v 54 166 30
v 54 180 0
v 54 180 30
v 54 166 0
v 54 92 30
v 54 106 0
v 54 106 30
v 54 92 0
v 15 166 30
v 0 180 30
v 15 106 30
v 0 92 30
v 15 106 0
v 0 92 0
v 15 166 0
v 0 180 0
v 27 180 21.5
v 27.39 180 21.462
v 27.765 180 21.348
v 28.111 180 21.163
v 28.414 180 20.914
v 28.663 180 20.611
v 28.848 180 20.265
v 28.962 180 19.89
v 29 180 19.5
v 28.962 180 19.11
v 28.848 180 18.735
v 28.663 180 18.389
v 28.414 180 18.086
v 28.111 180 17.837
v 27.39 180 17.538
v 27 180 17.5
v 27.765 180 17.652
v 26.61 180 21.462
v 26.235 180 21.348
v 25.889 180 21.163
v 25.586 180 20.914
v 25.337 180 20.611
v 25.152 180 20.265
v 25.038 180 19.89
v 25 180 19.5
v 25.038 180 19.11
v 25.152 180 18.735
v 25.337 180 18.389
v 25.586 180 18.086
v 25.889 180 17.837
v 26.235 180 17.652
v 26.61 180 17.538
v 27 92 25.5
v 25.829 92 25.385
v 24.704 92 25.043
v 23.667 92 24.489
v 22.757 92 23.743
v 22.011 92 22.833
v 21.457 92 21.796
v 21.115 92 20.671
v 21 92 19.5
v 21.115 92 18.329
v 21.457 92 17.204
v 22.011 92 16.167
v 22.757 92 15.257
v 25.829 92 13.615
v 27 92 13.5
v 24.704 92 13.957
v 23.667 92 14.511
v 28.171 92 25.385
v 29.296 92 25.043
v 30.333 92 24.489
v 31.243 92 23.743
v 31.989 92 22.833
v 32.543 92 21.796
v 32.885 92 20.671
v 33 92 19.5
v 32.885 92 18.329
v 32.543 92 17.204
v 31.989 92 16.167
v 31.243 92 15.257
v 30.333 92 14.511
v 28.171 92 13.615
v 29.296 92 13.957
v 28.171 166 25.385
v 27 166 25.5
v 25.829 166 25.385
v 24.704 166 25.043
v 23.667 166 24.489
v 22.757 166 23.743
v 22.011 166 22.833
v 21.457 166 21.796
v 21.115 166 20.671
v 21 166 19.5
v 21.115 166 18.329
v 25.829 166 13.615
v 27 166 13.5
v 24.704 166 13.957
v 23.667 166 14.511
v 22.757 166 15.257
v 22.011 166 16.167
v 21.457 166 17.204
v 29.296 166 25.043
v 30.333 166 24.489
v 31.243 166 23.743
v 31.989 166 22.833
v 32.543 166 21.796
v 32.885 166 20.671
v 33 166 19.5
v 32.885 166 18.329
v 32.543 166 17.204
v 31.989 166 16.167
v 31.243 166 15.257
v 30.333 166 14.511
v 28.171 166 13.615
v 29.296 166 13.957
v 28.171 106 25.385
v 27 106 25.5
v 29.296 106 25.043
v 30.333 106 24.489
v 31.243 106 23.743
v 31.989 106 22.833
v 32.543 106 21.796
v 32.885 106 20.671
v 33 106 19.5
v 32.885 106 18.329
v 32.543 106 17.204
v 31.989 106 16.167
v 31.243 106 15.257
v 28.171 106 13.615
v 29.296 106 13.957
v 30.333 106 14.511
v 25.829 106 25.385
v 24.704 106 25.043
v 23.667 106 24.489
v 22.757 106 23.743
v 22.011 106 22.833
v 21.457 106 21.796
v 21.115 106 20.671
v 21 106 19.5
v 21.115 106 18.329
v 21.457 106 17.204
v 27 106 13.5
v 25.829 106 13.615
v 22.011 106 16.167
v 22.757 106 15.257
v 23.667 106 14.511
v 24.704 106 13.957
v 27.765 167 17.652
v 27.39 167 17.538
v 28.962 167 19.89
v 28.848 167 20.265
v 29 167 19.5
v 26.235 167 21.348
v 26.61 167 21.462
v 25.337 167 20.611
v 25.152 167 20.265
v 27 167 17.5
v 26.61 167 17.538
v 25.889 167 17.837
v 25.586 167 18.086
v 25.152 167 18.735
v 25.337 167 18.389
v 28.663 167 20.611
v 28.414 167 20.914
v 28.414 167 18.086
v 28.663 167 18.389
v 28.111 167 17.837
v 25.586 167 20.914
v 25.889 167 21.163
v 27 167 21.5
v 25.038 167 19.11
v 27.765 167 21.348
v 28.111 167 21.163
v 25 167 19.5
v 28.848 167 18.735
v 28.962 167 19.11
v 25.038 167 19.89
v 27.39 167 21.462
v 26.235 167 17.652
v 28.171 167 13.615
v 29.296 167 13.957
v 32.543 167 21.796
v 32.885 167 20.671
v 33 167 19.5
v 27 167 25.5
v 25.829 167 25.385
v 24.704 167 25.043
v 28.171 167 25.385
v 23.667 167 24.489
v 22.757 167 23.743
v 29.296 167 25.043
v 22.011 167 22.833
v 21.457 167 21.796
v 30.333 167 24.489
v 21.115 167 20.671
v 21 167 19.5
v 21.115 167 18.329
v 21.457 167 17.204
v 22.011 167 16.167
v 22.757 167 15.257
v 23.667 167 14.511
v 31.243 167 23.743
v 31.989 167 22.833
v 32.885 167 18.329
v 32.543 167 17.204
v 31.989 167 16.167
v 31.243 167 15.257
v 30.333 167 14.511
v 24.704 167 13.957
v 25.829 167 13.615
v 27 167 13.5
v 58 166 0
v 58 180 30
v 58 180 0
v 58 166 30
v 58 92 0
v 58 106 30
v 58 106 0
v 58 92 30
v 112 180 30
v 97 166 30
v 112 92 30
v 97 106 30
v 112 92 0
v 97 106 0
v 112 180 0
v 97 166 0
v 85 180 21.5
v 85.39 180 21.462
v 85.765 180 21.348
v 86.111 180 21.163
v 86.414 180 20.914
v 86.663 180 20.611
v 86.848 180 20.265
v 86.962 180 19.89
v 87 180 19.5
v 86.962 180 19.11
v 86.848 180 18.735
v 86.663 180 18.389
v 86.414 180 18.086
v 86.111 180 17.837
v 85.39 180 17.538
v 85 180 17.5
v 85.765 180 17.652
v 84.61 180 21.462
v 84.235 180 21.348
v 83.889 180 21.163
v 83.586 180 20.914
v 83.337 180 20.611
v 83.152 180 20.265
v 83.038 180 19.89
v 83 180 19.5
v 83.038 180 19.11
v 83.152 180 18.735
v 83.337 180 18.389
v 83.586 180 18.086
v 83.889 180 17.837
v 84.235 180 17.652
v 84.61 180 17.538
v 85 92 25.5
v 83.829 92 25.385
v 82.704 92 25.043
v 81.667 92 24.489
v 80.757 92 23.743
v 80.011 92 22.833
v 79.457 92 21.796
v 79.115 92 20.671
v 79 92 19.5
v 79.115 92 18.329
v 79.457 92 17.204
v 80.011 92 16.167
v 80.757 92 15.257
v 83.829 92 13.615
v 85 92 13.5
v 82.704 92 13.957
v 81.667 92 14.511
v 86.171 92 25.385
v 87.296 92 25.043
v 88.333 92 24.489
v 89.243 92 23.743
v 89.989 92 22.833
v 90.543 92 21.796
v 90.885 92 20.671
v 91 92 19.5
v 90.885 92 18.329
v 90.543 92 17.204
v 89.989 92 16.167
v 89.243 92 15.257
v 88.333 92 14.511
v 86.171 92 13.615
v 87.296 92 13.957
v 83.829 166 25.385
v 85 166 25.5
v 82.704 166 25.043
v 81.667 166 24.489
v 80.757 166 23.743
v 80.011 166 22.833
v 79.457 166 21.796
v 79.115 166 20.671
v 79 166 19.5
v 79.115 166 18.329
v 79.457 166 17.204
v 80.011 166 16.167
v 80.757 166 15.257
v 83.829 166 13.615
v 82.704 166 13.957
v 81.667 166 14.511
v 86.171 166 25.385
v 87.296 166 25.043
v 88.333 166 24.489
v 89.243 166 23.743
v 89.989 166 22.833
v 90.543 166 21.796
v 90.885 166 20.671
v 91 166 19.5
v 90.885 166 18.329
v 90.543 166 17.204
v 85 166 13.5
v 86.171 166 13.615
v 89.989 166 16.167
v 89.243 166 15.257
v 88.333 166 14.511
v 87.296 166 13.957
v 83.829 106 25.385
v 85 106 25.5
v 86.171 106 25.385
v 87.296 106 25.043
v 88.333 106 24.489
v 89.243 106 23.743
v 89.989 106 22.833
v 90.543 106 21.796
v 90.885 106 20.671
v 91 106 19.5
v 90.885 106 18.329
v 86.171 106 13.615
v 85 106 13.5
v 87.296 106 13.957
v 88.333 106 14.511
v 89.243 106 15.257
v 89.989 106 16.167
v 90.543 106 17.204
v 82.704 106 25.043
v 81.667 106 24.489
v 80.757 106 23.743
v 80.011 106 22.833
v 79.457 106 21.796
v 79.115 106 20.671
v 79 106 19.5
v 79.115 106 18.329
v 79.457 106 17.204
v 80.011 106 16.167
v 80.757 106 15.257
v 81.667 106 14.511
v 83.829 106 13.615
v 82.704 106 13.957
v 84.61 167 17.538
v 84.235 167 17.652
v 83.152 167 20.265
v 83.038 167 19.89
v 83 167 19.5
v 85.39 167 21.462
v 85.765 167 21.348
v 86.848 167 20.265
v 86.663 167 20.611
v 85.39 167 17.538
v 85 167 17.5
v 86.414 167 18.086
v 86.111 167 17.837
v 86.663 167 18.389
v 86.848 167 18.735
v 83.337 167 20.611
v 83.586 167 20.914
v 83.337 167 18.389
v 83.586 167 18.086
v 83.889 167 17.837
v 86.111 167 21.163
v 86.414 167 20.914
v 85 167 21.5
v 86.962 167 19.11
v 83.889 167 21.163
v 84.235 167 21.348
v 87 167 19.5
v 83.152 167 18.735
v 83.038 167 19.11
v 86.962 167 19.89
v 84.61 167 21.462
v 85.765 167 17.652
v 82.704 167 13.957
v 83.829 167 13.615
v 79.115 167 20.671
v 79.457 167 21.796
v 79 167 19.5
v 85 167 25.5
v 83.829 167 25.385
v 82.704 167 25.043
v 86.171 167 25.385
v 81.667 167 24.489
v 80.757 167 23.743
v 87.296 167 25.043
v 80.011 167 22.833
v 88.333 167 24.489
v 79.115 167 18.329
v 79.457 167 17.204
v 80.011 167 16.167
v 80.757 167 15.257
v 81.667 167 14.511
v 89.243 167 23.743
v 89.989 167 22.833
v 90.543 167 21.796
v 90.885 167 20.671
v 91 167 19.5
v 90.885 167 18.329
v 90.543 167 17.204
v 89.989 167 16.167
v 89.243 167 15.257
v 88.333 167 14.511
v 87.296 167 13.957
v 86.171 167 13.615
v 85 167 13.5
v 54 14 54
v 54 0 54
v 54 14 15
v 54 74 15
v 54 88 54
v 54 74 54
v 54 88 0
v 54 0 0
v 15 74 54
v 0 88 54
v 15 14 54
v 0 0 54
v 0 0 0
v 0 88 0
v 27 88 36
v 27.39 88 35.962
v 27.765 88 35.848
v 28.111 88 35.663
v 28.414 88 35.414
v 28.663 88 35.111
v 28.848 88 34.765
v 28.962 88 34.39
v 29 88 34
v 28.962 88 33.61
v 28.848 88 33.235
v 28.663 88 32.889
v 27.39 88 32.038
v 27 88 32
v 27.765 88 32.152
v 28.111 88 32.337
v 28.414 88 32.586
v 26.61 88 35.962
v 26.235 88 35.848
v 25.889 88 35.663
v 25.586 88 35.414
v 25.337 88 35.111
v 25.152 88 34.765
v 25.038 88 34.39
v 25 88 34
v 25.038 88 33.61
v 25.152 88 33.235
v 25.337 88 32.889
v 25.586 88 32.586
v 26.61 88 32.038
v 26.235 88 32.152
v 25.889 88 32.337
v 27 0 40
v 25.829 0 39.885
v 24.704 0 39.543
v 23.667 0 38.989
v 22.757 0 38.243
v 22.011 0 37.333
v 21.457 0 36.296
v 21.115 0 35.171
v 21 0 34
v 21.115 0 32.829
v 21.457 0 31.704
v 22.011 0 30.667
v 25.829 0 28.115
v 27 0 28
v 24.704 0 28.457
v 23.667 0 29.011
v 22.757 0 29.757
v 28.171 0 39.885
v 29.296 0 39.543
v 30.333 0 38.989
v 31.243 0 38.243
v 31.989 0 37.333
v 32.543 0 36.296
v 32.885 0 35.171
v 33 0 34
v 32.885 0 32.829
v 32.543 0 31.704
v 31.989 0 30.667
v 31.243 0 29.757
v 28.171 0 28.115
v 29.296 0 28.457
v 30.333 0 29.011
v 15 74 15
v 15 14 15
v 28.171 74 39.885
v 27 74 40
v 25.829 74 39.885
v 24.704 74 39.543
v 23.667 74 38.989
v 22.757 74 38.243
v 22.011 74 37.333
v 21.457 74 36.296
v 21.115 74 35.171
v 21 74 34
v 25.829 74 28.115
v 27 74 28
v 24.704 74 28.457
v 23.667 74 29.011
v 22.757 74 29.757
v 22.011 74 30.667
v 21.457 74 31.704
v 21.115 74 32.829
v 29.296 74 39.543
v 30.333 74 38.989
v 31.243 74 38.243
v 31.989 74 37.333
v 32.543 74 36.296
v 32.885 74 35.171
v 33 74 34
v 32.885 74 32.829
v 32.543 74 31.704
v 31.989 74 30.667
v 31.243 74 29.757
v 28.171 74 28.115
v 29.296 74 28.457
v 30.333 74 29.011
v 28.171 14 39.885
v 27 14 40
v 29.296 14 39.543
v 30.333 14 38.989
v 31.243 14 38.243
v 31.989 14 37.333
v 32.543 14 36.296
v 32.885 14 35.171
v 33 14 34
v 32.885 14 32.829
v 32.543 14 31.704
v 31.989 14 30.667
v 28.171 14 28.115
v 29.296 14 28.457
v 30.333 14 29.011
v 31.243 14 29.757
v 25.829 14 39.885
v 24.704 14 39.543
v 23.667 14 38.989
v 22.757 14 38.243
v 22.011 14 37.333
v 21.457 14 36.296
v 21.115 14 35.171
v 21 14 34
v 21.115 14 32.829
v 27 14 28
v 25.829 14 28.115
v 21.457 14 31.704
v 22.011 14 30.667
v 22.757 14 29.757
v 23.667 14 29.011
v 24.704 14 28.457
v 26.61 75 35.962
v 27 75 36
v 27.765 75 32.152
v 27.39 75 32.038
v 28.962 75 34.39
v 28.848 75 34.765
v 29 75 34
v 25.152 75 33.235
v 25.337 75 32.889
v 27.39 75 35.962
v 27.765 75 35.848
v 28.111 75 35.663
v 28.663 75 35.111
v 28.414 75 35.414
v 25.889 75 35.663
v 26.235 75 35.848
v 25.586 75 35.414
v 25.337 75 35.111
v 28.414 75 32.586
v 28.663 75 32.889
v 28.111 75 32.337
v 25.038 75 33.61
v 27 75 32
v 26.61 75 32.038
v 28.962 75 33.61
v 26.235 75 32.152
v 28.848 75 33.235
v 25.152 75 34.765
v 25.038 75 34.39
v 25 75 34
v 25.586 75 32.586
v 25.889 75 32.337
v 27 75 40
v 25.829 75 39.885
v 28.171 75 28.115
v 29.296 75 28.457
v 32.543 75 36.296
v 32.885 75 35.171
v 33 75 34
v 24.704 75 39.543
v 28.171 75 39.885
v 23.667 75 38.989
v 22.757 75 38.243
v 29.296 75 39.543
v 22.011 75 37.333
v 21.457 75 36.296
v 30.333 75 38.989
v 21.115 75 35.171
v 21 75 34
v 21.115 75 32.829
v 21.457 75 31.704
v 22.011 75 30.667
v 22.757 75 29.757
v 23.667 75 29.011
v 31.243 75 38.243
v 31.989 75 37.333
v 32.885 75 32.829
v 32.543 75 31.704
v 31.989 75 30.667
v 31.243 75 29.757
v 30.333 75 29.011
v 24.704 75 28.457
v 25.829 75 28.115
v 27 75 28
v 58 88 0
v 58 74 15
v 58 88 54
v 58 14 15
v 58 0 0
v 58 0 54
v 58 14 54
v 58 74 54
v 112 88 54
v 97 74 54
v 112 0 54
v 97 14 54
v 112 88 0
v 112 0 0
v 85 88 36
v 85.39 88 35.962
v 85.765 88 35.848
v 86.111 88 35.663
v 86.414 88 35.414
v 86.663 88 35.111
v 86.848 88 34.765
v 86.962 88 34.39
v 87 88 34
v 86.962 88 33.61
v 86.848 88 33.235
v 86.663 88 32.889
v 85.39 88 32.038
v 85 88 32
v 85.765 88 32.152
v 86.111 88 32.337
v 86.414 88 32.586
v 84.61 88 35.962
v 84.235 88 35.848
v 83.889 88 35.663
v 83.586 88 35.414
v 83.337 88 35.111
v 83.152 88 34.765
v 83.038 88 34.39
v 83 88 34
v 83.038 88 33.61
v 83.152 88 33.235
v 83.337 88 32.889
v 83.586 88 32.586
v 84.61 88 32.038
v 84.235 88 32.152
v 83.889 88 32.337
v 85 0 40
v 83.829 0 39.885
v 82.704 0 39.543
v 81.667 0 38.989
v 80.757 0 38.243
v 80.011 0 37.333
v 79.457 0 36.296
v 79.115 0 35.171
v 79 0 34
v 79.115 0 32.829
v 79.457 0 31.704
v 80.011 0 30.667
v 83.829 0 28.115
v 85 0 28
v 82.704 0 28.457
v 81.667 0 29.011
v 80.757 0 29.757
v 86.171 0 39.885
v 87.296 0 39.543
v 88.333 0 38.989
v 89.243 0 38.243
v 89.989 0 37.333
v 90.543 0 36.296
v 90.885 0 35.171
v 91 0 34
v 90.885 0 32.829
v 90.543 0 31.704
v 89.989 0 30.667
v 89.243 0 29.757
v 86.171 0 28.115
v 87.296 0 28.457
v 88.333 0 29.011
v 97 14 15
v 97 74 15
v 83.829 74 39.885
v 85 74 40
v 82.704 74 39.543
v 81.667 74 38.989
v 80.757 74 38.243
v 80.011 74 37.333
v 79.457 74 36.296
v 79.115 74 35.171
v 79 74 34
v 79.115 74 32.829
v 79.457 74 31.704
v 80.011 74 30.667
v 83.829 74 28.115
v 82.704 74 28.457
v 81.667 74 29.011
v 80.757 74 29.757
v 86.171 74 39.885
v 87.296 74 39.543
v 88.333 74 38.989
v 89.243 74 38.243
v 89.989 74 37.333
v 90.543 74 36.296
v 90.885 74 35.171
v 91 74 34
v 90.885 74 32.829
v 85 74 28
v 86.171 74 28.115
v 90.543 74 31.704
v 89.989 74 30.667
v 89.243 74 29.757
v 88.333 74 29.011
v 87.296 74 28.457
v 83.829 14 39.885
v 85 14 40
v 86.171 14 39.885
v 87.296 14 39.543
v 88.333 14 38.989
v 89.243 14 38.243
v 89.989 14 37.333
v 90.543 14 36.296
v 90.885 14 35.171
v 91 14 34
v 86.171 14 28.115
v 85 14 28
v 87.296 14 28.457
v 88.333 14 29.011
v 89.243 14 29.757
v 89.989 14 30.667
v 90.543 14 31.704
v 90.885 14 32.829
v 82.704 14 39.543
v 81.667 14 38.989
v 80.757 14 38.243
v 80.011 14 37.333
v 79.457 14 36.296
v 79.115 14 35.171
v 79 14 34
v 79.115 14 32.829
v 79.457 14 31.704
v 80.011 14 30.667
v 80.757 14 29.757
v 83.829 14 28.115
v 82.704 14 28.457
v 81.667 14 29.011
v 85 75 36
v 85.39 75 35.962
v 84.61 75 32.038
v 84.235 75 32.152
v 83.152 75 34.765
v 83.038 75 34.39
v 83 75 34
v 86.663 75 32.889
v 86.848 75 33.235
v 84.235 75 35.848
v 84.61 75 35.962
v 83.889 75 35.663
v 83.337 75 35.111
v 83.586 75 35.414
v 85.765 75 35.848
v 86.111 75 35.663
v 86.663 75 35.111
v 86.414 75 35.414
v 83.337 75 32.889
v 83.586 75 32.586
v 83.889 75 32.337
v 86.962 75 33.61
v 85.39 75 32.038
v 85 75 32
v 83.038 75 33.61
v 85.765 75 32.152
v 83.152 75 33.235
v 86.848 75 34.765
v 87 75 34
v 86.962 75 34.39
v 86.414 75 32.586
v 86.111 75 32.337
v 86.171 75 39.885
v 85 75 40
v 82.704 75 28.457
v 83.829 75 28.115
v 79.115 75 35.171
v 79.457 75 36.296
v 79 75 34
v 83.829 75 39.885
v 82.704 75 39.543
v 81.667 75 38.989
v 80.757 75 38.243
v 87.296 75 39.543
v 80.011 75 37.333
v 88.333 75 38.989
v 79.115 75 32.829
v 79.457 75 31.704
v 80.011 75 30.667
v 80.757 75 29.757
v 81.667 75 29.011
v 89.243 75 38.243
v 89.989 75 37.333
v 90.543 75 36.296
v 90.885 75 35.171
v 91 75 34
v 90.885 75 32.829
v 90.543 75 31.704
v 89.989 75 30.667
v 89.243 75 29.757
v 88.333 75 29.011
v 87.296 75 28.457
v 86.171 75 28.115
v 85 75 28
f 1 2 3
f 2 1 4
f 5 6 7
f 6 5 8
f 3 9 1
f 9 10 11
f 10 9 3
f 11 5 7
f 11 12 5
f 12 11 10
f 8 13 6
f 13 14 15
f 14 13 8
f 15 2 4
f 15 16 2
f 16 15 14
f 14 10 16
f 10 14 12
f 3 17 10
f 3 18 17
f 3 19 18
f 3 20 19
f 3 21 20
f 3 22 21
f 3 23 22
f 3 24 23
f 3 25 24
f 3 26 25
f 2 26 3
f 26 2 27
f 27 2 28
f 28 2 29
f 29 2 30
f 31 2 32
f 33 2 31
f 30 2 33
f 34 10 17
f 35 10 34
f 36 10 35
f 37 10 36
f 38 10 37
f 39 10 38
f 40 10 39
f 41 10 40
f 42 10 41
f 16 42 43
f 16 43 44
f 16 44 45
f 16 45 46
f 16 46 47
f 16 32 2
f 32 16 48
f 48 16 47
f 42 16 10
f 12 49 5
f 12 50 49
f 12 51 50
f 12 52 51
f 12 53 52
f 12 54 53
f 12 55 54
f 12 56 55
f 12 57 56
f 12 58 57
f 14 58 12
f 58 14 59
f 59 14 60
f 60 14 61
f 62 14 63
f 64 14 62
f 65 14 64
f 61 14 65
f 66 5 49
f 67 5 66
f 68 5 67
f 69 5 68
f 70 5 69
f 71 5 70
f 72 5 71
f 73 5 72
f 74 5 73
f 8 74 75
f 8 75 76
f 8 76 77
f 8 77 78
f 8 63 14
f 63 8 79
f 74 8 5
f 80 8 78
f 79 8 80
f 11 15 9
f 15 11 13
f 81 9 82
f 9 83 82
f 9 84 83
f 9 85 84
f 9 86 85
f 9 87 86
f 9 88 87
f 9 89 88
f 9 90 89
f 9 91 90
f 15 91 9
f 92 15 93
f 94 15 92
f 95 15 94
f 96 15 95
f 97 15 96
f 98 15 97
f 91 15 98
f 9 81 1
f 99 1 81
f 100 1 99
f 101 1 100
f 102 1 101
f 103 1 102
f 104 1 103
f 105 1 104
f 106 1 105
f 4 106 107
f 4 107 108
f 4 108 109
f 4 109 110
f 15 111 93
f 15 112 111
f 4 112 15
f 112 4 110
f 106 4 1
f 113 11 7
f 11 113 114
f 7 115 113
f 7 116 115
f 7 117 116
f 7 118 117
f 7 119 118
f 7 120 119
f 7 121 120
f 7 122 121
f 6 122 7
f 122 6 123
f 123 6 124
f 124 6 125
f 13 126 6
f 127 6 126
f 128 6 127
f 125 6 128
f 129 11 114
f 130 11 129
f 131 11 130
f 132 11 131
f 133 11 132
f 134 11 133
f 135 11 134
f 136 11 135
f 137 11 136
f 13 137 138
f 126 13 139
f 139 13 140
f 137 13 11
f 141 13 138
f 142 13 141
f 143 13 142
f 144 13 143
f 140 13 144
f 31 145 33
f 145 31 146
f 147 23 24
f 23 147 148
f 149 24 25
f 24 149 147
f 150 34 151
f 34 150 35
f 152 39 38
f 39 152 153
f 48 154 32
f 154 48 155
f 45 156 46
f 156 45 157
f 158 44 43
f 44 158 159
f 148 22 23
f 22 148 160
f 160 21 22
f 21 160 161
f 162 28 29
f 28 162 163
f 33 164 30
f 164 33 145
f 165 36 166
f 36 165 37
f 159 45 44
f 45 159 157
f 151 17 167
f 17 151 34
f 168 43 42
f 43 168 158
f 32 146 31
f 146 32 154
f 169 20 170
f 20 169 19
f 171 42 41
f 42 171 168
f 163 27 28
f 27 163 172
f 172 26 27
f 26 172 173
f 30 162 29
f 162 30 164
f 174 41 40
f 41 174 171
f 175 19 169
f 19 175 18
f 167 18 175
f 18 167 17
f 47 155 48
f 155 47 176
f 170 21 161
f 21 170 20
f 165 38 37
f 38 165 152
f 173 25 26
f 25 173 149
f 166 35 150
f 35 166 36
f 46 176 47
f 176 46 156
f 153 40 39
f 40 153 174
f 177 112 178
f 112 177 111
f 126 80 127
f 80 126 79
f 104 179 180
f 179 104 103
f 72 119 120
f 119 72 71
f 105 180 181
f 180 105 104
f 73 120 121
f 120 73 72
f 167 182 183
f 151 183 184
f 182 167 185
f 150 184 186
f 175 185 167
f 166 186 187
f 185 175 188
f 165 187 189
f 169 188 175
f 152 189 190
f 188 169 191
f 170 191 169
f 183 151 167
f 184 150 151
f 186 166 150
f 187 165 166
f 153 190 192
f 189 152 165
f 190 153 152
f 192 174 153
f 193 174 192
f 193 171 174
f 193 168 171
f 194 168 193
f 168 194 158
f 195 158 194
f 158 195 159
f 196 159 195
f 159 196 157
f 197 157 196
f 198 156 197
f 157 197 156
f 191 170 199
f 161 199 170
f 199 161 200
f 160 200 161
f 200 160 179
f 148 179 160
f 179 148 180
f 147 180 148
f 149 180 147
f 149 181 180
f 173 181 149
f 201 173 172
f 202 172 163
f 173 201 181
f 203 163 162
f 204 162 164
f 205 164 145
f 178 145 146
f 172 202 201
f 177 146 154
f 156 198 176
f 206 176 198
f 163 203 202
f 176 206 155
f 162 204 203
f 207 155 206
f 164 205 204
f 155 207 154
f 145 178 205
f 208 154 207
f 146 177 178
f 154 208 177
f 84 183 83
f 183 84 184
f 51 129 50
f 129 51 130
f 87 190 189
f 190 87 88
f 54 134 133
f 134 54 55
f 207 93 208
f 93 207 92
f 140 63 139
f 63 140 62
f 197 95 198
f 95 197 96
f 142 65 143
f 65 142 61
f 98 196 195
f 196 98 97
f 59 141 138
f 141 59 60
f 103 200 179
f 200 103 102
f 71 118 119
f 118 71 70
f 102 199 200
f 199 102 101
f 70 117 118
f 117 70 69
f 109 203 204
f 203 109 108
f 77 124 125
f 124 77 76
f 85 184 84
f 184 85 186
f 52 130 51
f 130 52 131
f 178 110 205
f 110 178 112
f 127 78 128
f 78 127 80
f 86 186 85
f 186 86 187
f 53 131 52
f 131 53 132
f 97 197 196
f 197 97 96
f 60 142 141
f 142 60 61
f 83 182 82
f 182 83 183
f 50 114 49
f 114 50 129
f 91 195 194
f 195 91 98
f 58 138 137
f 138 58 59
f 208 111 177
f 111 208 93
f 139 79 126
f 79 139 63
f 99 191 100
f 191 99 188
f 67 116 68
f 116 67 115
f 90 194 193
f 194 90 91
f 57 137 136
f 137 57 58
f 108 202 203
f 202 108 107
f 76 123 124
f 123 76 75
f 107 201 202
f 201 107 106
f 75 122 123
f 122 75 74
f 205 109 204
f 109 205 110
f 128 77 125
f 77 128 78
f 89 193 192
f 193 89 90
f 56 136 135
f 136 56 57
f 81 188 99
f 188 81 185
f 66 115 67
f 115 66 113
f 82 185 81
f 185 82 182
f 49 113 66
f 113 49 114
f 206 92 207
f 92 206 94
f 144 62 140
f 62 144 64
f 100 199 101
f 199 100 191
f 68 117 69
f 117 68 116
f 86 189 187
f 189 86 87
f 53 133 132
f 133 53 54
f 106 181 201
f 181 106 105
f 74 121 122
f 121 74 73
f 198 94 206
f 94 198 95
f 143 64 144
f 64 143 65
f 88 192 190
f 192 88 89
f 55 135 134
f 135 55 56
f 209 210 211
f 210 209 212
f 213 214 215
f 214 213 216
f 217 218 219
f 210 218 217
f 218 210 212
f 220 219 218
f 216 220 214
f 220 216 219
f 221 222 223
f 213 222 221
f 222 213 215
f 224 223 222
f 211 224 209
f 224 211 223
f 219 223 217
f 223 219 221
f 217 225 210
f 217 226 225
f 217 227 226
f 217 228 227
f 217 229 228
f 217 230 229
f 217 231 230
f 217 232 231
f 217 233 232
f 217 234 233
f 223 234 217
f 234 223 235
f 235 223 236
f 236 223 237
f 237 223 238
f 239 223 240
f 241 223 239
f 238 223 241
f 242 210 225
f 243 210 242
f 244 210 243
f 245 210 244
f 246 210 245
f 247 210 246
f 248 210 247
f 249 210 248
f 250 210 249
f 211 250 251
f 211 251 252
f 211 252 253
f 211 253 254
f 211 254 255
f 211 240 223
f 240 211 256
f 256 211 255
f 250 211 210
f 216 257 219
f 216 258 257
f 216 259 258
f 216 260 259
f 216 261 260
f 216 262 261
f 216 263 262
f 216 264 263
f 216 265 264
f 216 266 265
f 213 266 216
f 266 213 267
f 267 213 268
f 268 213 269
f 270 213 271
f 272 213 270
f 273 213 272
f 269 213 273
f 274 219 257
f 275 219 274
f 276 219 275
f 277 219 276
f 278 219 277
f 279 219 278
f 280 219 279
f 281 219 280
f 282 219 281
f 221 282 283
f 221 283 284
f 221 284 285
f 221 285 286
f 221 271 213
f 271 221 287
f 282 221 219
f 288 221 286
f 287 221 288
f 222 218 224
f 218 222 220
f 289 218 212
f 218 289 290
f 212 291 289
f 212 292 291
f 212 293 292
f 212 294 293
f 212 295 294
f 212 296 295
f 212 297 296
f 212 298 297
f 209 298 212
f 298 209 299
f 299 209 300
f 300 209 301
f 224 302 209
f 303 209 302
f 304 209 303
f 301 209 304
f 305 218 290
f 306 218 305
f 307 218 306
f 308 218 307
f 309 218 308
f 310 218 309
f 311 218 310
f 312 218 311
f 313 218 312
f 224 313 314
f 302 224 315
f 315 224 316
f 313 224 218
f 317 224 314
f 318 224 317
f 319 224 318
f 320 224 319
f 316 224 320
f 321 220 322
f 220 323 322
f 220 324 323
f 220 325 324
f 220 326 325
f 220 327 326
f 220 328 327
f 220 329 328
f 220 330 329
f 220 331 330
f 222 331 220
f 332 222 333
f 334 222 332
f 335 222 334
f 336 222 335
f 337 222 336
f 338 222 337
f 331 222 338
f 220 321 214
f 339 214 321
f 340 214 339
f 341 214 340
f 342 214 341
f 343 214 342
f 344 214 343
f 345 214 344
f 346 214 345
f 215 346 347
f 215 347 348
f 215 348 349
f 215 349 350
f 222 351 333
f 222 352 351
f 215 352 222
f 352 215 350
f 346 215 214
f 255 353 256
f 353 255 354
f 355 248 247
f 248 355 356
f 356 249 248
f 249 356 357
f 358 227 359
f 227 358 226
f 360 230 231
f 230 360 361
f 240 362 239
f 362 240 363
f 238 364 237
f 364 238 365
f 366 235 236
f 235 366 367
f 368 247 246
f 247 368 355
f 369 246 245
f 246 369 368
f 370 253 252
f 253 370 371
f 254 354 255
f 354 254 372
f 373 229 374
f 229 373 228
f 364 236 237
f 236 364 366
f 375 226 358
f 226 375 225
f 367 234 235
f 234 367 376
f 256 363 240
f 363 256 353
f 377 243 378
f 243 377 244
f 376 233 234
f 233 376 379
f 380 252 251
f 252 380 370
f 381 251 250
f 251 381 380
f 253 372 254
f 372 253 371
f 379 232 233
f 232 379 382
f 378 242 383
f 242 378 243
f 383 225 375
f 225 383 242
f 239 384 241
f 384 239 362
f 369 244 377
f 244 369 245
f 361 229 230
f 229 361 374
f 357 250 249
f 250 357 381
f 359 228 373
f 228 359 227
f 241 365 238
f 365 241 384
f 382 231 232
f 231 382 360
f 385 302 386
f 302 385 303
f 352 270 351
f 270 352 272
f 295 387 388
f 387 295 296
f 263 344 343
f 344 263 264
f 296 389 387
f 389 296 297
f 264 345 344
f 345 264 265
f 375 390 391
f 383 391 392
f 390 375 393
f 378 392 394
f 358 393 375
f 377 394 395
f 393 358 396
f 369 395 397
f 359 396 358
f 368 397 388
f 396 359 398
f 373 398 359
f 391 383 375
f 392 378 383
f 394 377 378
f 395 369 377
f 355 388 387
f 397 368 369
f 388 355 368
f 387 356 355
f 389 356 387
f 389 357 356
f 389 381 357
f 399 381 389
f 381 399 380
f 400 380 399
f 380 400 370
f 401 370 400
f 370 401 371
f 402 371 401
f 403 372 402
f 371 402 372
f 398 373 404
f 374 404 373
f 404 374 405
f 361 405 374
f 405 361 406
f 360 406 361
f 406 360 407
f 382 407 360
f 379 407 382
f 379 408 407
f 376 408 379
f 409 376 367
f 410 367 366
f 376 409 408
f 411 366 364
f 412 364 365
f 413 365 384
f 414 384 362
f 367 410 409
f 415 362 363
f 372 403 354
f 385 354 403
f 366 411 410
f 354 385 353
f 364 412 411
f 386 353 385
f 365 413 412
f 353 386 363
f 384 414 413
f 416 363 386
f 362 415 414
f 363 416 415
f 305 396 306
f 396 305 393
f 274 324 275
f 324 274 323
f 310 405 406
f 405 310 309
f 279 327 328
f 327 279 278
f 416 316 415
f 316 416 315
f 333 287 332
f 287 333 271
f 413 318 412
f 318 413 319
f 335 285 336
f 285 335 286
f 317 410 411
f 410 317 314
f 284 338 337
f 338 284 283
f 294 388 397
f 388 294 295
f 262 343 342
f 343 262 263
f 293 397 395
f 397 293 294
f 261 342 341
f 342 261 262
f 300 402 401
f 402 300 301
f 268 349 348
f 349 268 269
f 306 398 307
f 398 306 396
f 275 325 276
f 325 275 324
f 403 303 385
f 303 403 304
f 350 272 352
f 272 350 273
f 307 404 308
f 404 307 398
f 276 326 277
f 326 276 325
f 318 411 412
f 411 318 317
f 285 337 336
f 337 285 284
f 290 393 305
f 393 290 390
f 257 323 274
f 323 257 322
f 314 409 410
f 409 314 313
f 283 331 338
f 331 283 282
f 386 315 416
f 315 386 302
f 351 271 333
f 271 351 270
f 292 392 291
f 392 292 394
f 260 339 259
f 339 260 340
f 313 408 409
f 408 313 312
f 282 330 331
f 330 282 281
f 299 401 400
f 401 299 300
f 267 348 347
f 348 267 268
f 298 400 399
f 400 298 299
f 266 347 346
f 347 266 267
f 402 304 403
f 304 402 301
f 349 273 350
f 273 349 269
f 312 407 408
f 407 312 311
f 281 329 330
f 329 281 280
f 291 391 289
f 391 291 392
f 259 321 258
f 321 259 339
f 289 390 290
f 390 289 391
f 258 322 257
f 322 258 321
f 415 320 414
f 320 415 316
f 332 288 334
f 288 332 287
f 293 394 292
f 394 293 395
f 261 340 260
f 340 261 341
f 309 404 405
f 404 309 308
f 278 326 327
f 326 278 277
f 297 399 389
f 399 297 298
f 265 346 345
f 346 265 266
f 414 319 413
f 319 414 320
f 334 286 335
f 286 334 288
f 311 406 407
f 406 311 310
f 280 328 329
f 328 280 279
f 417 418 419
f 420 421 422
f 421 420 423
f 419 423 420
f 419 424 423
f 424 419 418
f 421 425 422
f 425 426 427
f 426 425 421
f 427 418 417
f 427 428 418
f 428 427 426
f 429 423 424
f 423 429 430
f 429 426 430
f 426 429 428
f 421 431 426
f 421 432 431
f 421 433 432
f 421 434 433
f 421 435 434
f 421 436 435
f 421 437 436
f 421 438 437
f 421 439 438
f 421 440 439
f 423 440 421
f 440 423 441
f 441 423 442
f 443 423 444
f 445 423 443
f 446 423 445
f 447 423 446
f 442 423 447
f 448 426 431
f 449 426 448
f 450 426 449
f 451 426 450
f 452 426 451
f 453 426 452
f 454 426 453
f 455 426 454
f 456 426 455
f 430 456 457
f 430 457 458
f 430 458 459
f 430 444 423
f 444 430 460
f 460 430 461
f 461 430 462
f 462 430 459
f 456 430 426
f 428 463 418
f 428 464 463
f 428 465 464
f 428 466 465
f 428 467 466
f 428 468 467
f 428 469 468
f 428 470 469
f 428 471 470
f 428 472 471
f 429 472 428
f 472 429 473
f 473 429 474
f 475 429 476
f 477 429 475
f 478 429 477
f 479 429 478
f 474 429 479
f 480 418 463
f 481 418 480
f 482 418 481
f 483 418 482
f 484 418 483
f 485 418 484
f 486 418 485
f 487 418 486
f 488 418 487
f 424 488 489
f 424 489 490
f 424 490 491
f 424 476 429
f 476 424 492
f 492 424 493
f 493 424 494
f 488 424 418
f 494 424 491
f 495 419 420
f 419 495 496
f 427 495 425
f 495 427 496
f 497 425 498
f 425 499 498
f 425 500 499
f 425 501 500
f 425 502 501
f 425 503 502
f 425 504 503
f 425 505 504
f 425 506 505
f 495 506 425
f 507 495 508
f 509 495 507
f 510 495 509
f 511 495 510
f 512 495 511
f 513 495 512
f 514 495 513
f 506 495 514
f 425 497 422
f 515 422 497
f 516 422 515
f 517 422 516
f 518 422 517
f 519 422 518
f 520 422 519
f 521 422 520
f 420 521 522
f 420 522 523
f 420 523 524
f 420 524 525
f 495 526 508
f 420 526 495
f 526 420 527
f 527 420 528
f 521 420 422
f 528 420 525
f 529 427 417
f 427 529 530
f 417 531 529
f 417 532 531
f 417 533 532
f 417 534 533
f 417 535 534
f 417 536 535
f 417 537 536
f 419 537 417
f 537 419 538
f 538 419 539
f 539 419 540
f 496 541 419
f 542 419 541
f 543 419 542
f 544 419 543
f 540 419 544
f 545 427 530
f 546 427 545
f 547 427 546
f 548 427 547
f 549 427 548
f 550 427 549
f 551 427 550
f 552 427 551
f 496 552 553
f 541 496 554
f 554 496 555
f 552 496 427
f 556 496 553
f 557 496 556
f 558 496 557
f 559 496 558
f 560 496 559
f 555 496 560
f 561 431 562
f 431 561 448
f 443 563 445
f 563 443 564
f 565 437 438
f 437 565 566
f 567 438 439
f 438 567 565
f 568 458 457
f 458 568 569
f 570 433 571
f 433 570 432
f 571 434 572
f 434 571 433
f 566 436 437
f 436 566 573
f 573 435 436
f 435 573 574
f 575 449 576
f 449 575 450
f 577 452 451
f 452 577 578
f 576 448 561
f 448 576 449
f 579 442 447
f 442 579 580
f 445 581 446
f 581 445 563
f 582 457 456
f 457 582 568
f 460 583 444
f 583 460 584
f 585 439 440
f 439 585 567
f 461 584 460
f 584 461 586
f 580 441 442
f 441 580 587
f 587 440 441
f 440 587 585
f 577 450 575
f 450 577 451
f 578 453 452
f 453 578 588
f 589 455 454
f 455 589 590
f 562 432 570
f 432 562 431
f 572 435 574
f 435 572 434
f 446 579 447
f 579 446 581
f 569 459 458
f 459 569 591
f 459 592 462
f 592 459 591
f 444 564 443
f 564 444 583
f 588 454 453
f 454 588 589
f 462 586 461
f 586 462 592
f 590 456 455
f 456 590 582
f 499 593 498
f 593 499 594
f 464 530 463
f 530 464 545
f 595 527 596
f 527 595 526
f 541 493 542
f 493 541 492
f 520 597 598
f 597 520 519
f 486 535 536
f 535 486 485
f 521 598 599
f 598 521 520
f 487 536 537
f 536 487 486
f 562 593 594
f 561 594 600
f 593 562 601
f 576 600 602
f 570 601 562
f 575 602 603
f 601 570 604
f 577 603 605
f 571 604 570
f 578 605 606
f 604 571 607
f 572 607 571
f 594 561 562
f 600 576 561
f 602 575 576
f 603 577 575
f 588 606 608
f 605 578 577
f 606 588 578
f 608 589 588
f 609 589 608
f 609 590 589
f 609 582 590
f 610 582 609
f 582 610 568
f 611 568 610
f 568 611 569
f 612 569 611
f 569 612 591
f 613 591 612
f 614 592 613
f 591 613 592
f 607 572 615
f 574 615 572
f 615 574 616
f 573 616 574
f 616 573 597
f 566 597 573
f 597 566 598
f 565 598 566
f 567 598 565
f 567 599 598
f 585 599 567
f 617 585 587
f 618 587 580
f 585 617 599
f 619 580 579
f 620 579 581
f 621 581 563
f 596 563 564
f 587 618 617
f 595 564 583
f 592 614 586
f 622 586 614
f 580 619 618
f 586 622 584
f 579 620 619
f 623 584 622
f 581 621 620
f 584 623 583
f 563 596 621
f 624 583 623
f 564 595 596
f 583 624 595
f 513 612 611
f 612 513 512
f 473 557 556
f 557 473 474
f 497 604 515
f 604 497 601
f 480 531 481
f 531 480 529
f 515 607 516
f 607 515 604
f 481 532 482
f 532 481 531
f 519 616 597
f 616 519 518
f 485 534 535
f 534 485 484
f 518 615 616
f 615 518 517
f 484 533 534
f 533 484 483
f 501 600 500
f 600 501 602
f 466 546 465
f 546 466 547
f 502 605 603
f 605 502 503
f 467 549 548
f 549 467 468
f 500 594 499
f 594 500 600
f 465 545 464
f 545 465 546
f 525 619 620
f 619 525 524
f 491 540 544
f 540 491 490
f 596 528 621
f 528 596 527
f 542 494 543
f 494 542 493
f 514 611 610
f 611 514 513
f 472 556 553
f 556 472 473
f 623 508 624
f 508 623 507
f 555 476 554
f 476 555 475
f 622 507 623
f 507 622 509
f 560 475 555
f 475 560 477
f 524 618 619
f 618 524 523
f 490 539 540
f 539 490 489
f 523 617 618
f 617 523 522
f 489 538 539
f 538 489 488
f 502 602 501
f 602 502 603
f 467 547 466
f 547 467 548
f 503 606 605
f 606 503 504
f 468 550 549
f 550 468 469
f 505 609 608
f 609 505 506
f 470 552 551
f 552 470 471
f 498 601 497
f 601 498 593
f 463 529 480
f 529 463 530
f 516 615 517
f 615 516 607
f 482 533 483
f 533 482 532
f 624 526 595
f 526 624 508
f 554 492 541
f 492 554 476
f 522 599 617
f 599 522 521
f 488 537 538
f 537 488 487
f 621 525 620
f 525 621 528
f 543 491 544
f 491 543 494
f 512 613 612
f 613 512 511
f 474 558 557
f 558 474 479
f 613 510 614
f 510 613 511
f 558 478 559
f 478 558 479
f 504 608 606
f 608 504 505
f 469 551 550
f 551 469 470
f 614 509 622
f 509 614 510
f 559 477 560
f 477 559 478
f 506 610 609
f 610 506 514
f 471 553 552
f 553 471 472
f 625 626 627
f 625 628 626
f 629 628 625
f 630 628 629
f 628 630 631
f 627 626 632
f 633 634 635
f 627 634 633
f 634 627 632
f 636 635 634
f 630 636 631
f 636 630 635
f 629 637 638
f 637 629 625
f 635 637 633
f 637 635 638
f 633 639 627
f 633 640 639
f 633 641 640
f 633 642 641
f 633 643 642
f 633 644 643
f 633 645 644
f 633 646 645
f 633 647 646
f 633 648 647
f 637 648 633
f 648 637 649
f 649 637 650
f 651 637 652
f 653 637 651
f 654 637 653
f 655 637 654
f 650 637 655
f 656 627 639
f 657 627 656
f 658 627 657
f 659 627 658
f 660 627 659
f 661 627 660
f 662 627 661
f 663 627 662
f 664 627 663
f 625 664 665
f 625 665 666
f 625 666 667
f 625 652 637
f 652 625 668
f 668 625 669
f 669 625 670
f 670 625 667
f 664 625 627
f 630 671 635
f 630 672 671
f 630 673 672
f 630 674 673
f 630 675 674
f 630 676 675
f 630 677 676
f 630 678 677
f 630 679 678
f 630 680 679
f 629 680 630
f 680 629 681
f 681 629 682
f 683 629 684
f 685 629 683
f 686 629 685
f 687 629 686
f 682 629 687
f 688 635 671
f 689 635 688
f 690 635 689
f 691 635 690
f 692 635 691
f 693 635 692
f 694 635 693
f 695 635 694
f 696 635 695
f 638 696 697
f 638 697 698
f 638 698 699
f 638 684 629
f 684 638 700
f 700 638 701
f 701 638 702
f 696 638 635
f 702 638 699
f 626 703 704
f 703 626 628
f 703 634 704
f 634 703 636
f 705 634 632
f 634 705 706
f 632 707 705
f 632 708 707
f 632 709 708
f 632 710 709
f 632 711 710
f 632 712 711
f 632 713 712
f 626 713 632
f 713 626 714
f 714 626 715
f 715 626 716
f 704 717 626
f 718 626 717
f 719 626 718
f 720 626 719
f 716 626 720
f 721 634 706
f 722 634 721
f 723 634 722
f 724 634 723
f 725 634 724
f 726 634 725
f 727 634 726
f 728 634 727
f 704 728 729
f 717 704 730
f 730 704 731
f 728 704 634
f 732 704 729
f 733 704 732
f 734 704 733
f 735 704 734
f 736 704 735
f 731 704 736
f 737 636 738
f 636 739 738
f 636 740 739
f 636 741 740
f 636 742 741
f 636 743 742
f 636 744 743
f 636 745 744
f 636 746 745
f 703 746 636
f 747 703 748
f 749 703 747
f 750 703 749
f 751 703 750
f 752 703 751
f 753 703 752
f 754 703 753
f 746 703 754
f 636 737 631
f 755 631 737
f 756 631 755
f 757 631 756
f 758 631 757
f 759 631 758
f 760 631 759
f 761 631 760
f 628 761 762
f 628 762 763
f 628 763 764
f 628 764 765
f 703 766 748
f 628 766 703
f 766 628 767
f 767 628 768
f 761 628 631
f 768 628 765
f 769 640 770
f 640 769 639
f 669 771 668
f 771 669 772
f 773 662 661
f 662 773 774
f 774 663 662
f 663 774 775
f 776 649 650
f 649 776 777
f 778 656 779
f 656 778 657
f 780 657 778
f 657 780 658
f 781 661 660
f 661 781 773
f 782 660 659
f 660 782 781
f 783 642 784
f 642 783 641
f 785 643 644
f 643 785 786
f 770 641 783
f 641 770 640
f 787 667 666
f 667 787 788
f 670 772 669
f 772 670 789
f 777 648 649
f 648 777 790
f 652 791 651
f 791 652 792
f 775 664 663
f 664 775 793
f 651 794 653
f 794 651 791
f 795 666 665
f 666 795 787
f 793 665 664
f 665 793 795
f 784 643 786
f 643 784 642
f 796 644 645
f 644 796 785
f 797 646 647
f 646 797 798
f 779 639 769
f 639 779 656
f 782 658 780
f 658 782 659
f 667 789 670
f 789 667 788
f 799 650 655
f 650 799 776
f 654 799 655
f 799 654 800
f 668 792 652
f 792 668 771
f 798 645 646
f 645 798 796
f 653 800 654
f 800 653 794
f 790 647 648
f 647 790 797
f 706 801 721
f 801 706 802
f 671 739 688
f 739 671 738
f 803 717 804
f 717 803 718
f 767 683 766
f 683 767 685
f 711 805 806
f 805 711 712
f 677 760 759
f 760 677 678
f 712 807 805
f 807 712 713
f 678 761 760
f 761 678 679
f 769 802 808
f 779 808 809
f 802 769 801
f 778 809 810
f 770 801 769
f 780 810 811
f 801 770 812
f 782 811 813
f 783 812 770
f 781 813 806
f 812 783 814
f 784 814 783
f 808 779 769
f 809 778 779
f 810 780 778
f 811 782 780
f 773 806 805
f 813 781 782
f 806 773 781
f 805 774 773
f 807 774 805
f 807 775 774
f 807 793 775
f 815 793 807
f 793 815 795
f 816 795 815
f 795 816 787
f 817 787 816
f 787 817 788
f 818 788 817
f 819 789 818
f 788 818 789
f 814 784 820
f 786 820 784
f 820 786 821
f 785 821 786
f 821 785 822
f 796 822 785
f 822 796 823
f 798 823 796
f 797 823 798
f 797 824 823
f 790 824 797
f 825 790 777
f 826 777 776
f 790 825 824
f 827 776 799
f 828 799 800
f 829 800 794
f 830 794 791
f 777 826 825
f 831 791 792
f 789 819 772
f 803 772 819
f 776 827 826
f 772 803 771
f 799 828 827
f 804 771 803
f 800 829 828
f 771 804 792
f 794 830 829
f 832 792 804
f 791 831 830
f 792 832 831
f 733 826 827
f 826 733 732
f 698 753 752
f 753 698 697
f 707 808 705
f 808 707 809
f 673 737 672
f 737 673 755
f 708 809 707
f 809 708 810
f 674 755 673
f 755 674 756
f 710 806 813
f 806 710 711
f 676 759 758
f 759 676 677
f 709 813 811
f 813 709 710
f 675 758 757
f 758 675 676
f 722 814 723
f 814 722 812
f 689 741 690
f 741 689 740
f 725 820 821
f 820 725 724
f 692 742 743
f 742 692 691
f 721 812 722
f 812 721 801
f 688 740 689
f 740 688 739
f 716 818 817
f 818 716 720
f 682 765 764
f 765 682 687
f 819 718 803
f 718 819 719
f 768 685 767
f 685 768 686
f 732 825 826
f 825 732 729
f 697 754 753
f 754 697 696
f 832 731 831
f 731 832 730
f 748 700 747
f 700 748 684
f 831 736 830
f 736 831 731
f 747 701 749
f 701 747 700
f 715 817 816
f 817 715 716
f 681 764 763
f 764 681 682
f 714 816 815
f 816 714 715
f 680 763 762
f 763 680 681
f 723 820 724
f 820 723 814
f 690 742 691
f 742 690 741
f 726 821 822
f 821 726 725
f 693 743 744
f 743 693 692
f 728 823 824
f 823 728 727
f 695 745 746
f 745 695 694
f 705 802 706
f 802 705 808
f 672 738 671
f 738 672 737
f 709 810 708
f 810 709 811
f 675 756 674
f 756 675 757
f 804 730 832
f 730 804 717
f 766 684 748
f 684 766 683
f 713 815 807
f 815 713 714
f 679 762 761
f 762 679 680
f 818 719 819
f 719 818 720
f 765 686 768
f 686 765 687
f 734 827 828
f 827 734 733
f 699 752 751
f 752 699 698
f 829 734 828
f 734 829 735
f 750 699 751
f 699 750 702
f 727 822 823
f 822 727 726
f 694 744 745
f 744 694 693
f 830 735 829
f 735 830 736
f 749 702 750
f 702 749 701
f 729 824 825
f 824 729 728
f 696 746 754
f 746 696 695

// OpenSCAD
// Holder widths
holderWidths = 40;

// Holder depths
holderDepths = 60;

// Holder thickness
holderThickness = 14;

// Holder heights in the base holder
holderHeightsBase = 40;

// Holder heights in the top holder
holderHeightsTop = 30;

// Diameter of screw hole size
screwHoleDiameter = 4;

// Screw driver hole size
screwDriverHoleSize = 12;

// Spacing between objects
distanceBetweenObjectsInPreview = 4;

// Rounding of edges
$fn = $preview ? 16 : 32;

module topHook() {
  difference() {
    // Base cube
    cube([
      holderWidths + holderThickness,
      holderDepths + holderThickness * 2,
      holderHeightsTop
    ]);

    // Cut out paper holder
    translate([
      holderThickness + 1,
      holderThickness,
      -1
    ]) cube([
      holderWidths + 1,
      holderDepths,
      holderHeightsTop + 2
    ]);

    // Cut out screw hole
    translate([
      (holderThickness + holderWidths) / 2, // Centering of hole
      holderDepths + holderThickness * 2 + 1, // Depth of hole
      holderHeightsTop * 0.65 // Height of hole
    ]) rotate([90,0,0]) cylinder(
      d=screwHoleDiameter,
      h=holderDepths + holderThickness * 2 + 2
    );

    // Cut out screw driver hole
    translate([
      (holderThickness + holderWidths) / 2, // Centering of hole
      holderDepths + holderThickness * 1 + 1, // Depth of hole
      holderHeightsTop * 0.65 // Height of hole
    ]) rotate([90,0,0]) cylinder(
      d=screwDriverHoleSize,
      h=holderDepths + holderThickness * 1.5
    );
  }
}

module bottomHook() {
  difference() {
    // Base cube
    cube([
      holderWidths + holderThickness,
      holderDepths + holderThickness * 2,
      holderHeightsBase + holderThickness
    ]);

    // Cut out paper holder
    translate([
      holderThickness + 1,
      holderThickness,
      holderThickness + 1
    ]) cube([
      holderWidths + 1,
      holderDepths,
      holderHeightsBase + 1
    ]);
 
    // Cut out screw hole
    translate([
      (holderThickness + holderWidths) / 2, // Centering of hole
      holderDepths + holderThickness * 2 + 1, // Depth of hole
      holderHeightsBase * 0.85 // Height of hole
    ]) rotate([90,0,0]) cylinder(
      d=screwHoleDiameter,
      h=holderDepths + holderThickness * 2 + 2
    );

    // Cut out screw driver hole
    translate([
      (holderThickness + holderWidths) / 2, // Centering of hole
      holderDepths + holderThickness * 1 + 1, // Depth of hole
      holderHeightsBase * 0.85 // Height of hole
    ]) rotate([90,0,0]) cylinder(
      d=screwDriverHoleSize,
      h=holderDepths + holderThickness * 1.5
    );
  }
}

// Render the top hook
translate([(holderWidths+holderThickness)*2+distanceBetweenObjectsInPreview,0,0])
mirror([1,0,0])
translate([0,holderDepths + holderThickness * 2 + distanceBetweenObjectsInPreview,0])
topHook();

// Render the top hook
translate([0,holderDepths + holderThickness * 2 + distanceBetweenObjectsInPreview,0])
topHook();



// Render the bottom hook
bottomHook();

// Render the mirrored bottom hook
translate([(holderWidths + holderThickness)*2+distanceBetweenObjectsInPreview,0,0])
mirror([1,0,0]) bottomHook();
